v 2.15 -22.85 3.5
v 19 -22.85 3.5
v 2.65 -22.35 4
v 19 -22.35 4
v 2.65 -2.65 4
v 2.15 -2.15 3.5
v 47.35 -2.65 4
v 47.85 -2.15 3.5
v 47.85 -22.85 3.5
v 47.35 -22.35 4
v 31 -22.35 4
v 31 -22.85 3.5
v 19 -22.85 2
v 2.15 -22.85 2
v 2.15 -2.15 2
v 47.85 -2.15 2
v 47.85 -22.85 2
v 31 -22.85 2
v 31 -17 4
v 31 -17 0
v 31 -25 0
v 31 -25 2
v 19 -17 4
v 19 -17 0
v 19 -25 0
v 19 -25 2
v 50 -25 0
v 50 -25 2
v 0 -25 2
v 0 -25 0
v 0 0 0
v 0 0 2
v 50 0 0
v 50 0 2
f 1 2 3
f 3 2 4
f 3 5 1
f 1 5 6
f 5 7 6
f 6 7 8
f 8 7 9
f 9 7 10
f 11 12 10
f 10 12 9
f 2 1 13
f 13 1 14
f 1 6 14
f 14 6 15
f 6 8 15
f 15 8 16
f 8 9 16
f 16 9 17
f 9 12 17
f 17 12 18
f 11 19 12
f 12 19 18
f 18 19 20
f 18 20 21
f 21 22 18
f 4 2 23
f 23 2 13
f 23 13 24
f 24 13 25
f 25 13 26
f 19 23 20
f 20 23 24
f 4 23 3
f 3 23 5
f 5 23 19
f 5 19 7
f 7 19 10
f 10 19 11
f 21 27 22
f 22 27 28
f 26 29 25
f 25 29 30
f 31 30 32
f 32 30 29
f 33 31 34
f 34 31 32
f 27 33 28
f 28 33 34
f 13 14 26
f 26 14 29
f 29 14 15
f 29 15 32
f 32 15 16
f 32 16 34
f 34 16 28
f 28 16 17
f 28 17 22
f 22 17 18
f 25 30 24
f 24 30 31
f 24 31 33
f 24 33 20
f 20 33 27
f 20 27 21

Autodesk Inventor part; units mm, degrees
ref_plane "YZ Plane" through (0, 0, 0) normal (1, 0, 0) x (0, 1, 0)
ref_plane "XZ Plane" through (0, 0, 0) normal (0, 1, 0) x (-1, 0, 0)
ref_plane "XY Plane" through (0, 0, 0) normal (0, 0, 1) x (1, 0, 0)
sketch "Sketch1" plane through (0, 0, 0) normal (0, 0, 1) x (1, 0, 0)
  line L0 (0, 0) -> (50, 0)
  line L1 (50, 0) -> (50, -25)
  line L2 (50, -25) -> (0, -25)
  line L3 (0, -25) -> (0, 0)
  dimension "d0" = 50
  dimension "d1" = 25
extrude "Extrusion1" add sketch "Sketch1" along normal blind 2
sketch "Sketch2" plane through (0, 0, 2) normal (0, 0, 1) x (1, 0, 0)
  line L0 (47.85, -2.15) -> (2.15, -2.15)
  line L1 (2.15, -2.15) -> (2.15, -22.85)
  line L2 (2.15, -22.85) -> (47.85, -22.85)
  line L3 (47.85, -22.85) -> (47.85, -2.15)
  line L4 (50, -25) -> (50, 0) projected
  line L5 (50, 0) -> (0, 0) projected
  dimension "d4" = 45.7
  dimension "d5" = 20.7
  dimension "d6" = 2.15
  dimension "d7" = 2.15
extrude "Extrusion2" add sketch "Sketch2" along normal blind 2
sketch "Sketch3" plane through (0, 0, 0) normal (0, 0, -1) x (-1, 0, 0)
  line L0 (0, -25) -> (-50, -25) projected
  line L1 (-19, -25) -> (-31, -25)
  line L2 (-31, -25) -> (-31, -17)
  line L3 (-31, -17) -> (-19, -17)
  line L4 (-19, -17) -> (-19, -25)
  line L5 (0, 0) -> (0, -25) projected
  dimension "d10" = 12
  dimension "d11" = 8
  dimension "d12" = 19
extrude "Extrusion3" cut sketch "Sketch3" against normal through all
chamfer "Chamfer1" distance 0.5 angle 45 5 edges at (25, -2.15, 4) (47.85, -12.5, 4) (39.425, -22.85, 4) (10.575, -22.85, 4) (2.15, -12.5, 4)
properties part number "UltrasonicSensorMountTest_backplate"
